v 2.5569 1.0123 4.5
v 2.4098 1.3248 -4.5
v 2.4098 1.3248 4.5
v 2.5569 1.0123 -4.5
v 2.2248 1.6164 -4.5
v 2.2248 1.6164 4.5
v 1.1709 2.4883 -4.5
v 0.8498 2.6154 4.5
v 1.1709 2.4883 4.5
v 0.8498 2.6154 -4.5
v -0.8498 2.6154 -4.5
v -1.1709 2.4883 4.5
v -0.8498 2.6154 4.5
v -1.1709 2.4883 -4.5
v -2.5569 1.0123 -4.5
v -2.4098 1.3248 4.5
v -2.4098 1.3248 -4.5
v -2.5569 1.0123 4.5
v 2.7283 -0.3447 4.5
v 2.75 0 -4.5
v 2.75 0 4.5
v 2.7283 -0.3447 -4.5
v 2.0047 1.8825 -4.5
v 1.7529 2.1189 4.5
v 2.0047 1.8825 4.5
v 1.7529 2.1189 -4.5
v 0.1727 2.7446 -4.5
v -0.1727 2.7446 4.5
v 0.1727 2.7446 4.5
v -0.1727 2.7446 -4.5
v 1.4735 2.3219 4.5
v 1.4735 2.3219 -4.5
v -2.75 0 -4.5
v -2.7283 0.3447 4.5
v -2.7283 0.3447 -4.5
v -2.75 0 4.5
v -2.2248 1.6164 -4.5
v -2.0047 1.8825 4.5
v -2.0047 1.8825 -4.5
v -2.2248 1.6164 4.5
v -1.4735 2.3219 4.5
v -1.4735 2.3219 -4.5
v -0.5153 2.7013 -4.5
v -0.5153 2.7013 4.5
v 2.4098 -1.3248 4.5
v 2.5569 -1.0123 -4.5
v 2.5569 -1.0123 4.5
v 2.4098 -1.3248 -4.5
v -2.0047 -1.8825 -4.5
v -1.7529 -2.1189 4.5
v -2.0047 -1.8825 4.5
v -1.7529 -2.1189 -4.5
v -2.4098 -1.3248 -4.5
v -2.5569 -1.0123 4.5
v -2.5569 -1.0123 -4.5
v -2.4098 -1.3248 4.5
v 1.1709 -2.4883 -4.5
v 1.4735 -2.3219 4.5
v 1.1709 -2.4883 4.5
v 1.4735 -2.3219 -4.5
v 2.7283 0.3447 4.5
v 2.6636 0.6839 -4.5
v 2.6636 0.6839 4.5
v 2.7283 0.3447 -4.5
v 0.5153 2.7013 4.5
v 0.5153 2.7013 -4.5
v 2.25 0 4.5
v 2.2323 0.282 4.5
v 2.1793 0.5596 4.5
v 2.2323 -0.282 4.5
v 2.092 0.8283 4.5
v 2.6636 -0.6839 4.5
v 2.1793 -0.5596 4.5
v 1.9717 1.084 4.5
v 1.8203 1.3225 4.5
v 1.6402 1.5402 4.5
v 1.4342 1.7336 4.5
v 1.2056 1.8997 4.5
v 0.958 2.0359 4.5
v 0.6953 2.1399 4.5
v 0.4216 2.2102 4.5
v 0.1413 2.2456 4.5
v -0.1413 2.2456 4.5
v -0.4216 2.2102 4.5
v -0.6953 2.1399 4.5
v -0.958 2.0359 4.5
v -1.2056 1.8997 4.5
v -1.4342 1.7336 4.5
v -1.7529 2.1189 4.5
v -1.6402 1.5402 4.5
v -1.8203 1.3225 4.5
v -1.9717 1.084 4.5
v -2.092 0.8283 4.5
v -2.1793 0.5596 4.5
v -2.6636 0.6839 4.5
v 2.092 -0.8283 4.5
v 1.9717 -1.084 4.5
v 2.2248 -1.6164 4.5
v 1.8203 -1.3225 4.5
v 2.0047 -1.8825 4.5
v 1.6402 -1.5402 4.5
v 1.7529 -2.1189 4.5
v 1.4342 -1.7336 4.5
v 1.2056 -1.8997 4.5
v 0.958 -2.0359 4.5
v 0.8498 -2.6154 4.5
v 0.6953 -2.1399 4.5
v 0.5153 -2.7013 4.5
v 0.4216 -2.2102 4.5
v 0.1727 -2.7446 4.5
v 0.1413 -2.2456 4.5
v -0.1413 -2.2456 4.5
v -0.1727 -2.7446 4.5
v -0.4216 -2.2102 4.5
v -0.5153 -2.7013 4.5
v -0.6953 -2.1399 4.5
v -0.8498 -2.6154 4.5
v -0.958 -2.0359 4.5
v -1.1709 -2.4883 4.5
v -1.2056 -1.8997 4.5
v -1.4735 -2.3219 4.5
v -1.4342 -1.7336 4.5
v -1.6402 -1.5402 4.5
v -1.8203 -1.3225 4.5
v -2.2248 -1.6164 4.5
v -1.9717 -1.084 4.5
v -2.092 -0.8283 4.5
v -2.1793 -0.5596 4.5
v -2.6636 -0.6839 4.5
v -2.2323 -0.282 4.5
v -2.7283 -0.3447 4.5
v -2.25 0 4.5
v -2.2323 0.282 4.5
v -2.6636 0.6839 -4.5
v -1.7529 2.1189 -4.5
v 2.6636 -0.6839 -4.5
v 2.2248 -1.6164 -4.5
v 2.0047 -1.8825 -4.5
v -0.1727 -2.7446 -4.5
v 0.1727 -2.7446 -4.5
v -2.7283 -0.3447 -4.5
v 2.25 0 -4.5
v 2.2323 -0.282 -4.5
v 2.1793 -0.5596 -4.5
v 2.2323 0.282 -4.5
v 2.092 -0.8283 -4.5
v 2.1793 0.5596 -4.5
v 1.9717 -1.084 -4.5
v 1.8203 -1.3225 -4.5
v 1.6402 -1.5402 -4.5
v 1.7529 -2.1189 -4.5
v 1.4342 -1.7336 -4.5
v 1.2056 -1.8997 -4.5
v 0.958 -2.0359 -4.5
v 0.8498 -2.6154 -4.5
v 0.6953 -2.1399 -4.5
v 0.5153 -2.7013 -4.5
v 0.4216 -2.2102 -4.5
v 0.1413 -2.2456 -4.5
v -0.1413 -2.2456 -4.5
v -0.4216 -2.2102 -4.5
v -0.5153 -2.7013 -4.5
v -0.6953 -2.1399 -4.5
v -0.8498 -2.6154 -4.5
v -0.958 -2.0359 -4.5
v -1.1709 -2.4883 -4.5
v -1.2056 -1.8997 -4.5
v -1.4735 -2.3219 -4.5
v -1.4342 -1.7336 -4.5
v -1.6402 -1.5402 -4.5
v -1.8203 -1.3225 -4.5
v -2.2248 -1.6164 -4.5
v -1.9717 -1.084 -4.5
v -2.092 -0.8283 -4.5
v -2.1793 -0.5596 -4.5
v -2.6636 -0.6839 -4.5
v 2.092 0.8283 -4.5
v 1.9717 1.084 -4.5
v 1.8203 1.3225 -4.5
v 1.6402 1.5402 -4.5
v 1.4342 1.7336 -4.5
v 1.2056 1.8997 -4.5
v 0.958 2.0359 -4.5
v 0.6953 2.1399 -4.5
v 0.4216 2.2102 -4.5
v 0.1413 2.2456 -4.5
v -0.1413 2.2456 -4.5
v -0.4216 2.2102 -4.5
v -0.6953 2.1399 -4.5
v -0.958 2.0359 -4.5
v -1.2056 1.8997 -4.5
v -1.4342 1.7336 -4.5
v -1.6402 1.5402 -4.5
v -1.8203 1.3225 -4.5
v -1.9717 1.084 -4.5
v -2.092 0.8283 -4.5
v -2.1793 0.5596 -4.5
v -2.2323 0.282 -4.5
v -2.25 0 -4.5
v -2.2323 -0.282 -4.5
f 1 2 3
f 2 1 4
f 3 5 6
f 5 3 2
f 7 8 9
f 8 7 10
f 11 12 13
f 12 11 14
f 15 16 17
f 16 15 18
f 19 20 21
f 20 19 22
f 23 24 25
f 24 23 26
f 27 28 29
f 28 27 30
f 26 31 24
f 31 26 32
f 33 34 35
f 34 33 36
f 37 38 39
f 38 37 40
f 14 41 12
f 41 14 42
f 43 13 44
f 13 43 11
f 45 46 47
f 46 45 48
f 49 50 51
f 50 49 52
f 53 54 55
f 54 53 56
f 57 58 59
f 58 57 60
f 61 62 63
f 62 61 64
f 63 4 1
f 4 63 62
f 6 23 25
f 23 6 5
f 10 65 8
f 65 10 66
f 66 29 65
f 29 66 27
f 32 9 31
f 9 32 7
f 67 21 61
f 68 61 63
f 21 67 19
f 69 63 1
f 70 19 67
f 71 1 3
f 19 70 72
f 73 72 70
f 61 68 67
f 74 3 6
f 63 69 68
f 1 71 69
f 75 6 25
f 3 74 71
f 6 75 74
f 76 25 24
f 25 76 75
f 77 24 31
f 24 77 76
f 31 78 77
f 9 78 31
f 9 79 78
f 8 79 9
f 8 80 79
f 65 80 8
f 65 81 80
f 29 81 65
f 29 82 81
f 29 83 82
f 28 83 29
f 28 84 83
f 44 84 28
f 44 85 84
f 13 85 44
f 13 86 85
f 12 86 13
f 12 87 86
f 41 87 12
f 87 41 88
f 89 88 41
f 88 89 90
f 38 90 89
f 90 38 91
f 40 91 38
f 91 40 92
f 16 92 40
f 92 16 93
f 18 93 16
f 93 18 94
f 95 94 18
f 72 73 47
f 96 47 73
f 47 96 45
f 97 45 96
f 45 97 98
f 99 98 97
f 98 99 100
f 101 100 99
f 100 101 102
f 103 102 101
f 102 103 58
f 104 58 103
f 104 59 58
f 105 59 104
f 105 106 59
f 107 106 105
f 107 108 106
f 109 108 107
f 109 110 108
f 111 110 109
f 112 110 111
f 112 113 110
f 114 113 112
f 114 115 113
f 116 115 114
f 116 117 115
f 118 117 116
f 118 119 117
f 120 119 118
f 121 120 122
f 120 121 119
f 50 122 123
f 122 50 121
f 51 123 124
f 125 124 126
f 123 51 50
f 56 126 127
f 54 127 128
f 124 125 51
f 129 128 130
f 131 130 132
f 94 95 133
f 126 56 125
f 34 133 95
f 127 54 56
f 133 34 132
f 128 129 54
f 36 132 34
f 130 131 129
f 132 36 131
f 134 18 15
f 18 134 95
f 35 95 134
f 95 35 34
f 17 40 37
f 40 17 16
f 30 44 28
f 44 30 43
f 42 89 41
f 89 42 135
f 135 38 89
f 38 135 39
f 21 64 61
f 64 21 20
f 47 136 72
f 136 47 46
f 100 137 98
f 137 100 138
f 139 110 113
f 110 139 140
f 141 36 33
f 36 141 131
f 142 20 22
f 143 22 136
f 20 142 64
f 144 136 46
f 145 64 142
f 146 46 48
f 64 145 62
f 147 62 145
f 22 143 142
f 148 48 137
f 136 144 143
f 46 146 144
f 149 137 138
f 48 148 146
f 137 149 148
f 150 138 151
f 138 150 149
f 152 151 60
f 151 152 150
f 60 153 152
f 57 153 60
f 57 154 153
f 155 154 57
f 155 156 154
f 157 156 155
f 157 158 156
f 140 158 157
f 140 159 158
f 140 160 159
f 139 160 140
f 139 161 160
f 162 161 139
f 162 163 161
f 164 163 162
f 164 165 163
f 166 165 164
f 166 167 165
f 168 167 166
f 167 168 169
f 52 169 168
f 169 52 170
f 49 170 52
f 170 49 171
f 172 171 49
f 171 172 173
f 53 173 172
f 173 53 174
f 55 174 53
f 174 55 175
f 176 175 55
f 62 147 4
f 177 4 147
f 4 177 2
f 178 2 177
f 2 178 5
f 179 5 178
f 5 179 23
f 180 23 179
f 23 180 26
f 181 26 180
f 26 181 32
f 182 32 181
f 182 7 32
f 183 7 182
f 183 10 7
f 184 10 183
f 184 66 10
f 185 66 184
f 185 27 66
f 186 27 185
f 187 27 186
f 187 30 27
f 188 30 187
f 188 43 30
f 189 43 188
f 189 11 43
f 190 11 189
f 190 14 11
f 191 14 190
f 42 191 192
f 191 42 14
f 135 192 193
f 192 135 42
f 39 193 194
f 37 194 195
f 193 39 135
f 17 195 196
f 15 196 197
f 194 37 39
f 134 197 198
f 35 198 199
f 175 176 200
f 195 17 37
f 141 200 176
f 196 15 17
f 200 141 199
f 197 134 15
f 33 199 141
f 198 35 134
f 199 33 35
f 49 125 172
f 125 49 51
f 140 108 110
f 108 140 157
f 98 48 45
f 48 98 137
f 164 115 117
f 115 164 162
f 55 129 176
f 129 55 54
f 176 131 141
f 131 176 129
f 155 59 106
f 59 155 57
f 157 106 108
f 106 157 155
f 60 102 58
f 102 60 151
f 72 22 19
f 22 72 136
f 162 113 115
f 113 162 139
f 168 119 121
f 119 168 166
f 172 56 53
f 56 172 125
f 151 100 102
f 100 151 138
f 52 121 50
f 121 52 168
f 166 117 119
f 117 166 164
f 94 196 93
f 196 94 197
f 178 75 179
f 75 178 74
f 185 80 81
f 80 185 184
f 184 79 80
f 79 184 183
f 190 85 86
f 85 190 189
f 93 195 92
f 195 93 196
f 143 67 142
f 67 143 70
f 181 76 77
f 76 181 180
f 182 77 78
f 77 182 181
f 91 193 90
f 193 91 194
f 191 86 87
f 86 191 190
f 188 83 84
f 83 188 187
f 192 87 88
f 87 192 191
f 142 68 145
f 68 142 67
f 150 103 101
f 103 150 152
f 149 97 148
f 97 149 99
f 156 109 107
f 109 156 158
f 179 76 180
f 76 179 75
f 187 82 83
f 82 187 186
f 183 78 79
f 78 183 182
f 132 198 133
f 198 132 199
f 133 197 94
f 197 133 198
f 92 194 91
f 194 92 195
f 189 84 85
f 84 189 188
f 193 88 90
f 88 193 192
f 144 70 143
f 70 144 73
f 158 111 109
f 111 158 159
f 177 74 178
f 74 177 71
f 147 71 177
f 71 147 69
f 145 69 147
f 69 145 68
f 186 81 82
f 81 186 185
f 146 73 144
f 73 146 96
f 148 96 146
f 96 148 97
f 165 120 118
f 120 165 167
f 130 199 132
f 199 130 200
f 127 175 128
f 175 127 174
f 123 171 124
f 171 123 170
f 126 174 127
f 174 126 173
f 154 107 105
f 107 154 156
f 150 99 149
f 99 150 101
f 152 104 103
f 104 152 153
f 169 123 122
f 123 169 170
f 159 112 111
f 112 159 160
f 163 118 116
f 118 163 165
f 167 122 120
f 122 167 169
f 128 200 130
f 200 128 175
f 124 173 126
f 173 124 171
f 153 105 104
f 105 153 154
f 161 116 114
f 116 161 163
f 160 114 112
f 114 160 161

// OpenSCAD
$fn = 50;


difference() {
	union() {
		translate(v = [0, 0, -4.5000000000]) {
			cylinder(h = 9, r = 2.7500000000);
		}
	}
	union() {
		translate(v = [0, 0, -100.0000000000]) {
			cylinder(h = 200, r = 2.2500000000);
		}
	}
}
